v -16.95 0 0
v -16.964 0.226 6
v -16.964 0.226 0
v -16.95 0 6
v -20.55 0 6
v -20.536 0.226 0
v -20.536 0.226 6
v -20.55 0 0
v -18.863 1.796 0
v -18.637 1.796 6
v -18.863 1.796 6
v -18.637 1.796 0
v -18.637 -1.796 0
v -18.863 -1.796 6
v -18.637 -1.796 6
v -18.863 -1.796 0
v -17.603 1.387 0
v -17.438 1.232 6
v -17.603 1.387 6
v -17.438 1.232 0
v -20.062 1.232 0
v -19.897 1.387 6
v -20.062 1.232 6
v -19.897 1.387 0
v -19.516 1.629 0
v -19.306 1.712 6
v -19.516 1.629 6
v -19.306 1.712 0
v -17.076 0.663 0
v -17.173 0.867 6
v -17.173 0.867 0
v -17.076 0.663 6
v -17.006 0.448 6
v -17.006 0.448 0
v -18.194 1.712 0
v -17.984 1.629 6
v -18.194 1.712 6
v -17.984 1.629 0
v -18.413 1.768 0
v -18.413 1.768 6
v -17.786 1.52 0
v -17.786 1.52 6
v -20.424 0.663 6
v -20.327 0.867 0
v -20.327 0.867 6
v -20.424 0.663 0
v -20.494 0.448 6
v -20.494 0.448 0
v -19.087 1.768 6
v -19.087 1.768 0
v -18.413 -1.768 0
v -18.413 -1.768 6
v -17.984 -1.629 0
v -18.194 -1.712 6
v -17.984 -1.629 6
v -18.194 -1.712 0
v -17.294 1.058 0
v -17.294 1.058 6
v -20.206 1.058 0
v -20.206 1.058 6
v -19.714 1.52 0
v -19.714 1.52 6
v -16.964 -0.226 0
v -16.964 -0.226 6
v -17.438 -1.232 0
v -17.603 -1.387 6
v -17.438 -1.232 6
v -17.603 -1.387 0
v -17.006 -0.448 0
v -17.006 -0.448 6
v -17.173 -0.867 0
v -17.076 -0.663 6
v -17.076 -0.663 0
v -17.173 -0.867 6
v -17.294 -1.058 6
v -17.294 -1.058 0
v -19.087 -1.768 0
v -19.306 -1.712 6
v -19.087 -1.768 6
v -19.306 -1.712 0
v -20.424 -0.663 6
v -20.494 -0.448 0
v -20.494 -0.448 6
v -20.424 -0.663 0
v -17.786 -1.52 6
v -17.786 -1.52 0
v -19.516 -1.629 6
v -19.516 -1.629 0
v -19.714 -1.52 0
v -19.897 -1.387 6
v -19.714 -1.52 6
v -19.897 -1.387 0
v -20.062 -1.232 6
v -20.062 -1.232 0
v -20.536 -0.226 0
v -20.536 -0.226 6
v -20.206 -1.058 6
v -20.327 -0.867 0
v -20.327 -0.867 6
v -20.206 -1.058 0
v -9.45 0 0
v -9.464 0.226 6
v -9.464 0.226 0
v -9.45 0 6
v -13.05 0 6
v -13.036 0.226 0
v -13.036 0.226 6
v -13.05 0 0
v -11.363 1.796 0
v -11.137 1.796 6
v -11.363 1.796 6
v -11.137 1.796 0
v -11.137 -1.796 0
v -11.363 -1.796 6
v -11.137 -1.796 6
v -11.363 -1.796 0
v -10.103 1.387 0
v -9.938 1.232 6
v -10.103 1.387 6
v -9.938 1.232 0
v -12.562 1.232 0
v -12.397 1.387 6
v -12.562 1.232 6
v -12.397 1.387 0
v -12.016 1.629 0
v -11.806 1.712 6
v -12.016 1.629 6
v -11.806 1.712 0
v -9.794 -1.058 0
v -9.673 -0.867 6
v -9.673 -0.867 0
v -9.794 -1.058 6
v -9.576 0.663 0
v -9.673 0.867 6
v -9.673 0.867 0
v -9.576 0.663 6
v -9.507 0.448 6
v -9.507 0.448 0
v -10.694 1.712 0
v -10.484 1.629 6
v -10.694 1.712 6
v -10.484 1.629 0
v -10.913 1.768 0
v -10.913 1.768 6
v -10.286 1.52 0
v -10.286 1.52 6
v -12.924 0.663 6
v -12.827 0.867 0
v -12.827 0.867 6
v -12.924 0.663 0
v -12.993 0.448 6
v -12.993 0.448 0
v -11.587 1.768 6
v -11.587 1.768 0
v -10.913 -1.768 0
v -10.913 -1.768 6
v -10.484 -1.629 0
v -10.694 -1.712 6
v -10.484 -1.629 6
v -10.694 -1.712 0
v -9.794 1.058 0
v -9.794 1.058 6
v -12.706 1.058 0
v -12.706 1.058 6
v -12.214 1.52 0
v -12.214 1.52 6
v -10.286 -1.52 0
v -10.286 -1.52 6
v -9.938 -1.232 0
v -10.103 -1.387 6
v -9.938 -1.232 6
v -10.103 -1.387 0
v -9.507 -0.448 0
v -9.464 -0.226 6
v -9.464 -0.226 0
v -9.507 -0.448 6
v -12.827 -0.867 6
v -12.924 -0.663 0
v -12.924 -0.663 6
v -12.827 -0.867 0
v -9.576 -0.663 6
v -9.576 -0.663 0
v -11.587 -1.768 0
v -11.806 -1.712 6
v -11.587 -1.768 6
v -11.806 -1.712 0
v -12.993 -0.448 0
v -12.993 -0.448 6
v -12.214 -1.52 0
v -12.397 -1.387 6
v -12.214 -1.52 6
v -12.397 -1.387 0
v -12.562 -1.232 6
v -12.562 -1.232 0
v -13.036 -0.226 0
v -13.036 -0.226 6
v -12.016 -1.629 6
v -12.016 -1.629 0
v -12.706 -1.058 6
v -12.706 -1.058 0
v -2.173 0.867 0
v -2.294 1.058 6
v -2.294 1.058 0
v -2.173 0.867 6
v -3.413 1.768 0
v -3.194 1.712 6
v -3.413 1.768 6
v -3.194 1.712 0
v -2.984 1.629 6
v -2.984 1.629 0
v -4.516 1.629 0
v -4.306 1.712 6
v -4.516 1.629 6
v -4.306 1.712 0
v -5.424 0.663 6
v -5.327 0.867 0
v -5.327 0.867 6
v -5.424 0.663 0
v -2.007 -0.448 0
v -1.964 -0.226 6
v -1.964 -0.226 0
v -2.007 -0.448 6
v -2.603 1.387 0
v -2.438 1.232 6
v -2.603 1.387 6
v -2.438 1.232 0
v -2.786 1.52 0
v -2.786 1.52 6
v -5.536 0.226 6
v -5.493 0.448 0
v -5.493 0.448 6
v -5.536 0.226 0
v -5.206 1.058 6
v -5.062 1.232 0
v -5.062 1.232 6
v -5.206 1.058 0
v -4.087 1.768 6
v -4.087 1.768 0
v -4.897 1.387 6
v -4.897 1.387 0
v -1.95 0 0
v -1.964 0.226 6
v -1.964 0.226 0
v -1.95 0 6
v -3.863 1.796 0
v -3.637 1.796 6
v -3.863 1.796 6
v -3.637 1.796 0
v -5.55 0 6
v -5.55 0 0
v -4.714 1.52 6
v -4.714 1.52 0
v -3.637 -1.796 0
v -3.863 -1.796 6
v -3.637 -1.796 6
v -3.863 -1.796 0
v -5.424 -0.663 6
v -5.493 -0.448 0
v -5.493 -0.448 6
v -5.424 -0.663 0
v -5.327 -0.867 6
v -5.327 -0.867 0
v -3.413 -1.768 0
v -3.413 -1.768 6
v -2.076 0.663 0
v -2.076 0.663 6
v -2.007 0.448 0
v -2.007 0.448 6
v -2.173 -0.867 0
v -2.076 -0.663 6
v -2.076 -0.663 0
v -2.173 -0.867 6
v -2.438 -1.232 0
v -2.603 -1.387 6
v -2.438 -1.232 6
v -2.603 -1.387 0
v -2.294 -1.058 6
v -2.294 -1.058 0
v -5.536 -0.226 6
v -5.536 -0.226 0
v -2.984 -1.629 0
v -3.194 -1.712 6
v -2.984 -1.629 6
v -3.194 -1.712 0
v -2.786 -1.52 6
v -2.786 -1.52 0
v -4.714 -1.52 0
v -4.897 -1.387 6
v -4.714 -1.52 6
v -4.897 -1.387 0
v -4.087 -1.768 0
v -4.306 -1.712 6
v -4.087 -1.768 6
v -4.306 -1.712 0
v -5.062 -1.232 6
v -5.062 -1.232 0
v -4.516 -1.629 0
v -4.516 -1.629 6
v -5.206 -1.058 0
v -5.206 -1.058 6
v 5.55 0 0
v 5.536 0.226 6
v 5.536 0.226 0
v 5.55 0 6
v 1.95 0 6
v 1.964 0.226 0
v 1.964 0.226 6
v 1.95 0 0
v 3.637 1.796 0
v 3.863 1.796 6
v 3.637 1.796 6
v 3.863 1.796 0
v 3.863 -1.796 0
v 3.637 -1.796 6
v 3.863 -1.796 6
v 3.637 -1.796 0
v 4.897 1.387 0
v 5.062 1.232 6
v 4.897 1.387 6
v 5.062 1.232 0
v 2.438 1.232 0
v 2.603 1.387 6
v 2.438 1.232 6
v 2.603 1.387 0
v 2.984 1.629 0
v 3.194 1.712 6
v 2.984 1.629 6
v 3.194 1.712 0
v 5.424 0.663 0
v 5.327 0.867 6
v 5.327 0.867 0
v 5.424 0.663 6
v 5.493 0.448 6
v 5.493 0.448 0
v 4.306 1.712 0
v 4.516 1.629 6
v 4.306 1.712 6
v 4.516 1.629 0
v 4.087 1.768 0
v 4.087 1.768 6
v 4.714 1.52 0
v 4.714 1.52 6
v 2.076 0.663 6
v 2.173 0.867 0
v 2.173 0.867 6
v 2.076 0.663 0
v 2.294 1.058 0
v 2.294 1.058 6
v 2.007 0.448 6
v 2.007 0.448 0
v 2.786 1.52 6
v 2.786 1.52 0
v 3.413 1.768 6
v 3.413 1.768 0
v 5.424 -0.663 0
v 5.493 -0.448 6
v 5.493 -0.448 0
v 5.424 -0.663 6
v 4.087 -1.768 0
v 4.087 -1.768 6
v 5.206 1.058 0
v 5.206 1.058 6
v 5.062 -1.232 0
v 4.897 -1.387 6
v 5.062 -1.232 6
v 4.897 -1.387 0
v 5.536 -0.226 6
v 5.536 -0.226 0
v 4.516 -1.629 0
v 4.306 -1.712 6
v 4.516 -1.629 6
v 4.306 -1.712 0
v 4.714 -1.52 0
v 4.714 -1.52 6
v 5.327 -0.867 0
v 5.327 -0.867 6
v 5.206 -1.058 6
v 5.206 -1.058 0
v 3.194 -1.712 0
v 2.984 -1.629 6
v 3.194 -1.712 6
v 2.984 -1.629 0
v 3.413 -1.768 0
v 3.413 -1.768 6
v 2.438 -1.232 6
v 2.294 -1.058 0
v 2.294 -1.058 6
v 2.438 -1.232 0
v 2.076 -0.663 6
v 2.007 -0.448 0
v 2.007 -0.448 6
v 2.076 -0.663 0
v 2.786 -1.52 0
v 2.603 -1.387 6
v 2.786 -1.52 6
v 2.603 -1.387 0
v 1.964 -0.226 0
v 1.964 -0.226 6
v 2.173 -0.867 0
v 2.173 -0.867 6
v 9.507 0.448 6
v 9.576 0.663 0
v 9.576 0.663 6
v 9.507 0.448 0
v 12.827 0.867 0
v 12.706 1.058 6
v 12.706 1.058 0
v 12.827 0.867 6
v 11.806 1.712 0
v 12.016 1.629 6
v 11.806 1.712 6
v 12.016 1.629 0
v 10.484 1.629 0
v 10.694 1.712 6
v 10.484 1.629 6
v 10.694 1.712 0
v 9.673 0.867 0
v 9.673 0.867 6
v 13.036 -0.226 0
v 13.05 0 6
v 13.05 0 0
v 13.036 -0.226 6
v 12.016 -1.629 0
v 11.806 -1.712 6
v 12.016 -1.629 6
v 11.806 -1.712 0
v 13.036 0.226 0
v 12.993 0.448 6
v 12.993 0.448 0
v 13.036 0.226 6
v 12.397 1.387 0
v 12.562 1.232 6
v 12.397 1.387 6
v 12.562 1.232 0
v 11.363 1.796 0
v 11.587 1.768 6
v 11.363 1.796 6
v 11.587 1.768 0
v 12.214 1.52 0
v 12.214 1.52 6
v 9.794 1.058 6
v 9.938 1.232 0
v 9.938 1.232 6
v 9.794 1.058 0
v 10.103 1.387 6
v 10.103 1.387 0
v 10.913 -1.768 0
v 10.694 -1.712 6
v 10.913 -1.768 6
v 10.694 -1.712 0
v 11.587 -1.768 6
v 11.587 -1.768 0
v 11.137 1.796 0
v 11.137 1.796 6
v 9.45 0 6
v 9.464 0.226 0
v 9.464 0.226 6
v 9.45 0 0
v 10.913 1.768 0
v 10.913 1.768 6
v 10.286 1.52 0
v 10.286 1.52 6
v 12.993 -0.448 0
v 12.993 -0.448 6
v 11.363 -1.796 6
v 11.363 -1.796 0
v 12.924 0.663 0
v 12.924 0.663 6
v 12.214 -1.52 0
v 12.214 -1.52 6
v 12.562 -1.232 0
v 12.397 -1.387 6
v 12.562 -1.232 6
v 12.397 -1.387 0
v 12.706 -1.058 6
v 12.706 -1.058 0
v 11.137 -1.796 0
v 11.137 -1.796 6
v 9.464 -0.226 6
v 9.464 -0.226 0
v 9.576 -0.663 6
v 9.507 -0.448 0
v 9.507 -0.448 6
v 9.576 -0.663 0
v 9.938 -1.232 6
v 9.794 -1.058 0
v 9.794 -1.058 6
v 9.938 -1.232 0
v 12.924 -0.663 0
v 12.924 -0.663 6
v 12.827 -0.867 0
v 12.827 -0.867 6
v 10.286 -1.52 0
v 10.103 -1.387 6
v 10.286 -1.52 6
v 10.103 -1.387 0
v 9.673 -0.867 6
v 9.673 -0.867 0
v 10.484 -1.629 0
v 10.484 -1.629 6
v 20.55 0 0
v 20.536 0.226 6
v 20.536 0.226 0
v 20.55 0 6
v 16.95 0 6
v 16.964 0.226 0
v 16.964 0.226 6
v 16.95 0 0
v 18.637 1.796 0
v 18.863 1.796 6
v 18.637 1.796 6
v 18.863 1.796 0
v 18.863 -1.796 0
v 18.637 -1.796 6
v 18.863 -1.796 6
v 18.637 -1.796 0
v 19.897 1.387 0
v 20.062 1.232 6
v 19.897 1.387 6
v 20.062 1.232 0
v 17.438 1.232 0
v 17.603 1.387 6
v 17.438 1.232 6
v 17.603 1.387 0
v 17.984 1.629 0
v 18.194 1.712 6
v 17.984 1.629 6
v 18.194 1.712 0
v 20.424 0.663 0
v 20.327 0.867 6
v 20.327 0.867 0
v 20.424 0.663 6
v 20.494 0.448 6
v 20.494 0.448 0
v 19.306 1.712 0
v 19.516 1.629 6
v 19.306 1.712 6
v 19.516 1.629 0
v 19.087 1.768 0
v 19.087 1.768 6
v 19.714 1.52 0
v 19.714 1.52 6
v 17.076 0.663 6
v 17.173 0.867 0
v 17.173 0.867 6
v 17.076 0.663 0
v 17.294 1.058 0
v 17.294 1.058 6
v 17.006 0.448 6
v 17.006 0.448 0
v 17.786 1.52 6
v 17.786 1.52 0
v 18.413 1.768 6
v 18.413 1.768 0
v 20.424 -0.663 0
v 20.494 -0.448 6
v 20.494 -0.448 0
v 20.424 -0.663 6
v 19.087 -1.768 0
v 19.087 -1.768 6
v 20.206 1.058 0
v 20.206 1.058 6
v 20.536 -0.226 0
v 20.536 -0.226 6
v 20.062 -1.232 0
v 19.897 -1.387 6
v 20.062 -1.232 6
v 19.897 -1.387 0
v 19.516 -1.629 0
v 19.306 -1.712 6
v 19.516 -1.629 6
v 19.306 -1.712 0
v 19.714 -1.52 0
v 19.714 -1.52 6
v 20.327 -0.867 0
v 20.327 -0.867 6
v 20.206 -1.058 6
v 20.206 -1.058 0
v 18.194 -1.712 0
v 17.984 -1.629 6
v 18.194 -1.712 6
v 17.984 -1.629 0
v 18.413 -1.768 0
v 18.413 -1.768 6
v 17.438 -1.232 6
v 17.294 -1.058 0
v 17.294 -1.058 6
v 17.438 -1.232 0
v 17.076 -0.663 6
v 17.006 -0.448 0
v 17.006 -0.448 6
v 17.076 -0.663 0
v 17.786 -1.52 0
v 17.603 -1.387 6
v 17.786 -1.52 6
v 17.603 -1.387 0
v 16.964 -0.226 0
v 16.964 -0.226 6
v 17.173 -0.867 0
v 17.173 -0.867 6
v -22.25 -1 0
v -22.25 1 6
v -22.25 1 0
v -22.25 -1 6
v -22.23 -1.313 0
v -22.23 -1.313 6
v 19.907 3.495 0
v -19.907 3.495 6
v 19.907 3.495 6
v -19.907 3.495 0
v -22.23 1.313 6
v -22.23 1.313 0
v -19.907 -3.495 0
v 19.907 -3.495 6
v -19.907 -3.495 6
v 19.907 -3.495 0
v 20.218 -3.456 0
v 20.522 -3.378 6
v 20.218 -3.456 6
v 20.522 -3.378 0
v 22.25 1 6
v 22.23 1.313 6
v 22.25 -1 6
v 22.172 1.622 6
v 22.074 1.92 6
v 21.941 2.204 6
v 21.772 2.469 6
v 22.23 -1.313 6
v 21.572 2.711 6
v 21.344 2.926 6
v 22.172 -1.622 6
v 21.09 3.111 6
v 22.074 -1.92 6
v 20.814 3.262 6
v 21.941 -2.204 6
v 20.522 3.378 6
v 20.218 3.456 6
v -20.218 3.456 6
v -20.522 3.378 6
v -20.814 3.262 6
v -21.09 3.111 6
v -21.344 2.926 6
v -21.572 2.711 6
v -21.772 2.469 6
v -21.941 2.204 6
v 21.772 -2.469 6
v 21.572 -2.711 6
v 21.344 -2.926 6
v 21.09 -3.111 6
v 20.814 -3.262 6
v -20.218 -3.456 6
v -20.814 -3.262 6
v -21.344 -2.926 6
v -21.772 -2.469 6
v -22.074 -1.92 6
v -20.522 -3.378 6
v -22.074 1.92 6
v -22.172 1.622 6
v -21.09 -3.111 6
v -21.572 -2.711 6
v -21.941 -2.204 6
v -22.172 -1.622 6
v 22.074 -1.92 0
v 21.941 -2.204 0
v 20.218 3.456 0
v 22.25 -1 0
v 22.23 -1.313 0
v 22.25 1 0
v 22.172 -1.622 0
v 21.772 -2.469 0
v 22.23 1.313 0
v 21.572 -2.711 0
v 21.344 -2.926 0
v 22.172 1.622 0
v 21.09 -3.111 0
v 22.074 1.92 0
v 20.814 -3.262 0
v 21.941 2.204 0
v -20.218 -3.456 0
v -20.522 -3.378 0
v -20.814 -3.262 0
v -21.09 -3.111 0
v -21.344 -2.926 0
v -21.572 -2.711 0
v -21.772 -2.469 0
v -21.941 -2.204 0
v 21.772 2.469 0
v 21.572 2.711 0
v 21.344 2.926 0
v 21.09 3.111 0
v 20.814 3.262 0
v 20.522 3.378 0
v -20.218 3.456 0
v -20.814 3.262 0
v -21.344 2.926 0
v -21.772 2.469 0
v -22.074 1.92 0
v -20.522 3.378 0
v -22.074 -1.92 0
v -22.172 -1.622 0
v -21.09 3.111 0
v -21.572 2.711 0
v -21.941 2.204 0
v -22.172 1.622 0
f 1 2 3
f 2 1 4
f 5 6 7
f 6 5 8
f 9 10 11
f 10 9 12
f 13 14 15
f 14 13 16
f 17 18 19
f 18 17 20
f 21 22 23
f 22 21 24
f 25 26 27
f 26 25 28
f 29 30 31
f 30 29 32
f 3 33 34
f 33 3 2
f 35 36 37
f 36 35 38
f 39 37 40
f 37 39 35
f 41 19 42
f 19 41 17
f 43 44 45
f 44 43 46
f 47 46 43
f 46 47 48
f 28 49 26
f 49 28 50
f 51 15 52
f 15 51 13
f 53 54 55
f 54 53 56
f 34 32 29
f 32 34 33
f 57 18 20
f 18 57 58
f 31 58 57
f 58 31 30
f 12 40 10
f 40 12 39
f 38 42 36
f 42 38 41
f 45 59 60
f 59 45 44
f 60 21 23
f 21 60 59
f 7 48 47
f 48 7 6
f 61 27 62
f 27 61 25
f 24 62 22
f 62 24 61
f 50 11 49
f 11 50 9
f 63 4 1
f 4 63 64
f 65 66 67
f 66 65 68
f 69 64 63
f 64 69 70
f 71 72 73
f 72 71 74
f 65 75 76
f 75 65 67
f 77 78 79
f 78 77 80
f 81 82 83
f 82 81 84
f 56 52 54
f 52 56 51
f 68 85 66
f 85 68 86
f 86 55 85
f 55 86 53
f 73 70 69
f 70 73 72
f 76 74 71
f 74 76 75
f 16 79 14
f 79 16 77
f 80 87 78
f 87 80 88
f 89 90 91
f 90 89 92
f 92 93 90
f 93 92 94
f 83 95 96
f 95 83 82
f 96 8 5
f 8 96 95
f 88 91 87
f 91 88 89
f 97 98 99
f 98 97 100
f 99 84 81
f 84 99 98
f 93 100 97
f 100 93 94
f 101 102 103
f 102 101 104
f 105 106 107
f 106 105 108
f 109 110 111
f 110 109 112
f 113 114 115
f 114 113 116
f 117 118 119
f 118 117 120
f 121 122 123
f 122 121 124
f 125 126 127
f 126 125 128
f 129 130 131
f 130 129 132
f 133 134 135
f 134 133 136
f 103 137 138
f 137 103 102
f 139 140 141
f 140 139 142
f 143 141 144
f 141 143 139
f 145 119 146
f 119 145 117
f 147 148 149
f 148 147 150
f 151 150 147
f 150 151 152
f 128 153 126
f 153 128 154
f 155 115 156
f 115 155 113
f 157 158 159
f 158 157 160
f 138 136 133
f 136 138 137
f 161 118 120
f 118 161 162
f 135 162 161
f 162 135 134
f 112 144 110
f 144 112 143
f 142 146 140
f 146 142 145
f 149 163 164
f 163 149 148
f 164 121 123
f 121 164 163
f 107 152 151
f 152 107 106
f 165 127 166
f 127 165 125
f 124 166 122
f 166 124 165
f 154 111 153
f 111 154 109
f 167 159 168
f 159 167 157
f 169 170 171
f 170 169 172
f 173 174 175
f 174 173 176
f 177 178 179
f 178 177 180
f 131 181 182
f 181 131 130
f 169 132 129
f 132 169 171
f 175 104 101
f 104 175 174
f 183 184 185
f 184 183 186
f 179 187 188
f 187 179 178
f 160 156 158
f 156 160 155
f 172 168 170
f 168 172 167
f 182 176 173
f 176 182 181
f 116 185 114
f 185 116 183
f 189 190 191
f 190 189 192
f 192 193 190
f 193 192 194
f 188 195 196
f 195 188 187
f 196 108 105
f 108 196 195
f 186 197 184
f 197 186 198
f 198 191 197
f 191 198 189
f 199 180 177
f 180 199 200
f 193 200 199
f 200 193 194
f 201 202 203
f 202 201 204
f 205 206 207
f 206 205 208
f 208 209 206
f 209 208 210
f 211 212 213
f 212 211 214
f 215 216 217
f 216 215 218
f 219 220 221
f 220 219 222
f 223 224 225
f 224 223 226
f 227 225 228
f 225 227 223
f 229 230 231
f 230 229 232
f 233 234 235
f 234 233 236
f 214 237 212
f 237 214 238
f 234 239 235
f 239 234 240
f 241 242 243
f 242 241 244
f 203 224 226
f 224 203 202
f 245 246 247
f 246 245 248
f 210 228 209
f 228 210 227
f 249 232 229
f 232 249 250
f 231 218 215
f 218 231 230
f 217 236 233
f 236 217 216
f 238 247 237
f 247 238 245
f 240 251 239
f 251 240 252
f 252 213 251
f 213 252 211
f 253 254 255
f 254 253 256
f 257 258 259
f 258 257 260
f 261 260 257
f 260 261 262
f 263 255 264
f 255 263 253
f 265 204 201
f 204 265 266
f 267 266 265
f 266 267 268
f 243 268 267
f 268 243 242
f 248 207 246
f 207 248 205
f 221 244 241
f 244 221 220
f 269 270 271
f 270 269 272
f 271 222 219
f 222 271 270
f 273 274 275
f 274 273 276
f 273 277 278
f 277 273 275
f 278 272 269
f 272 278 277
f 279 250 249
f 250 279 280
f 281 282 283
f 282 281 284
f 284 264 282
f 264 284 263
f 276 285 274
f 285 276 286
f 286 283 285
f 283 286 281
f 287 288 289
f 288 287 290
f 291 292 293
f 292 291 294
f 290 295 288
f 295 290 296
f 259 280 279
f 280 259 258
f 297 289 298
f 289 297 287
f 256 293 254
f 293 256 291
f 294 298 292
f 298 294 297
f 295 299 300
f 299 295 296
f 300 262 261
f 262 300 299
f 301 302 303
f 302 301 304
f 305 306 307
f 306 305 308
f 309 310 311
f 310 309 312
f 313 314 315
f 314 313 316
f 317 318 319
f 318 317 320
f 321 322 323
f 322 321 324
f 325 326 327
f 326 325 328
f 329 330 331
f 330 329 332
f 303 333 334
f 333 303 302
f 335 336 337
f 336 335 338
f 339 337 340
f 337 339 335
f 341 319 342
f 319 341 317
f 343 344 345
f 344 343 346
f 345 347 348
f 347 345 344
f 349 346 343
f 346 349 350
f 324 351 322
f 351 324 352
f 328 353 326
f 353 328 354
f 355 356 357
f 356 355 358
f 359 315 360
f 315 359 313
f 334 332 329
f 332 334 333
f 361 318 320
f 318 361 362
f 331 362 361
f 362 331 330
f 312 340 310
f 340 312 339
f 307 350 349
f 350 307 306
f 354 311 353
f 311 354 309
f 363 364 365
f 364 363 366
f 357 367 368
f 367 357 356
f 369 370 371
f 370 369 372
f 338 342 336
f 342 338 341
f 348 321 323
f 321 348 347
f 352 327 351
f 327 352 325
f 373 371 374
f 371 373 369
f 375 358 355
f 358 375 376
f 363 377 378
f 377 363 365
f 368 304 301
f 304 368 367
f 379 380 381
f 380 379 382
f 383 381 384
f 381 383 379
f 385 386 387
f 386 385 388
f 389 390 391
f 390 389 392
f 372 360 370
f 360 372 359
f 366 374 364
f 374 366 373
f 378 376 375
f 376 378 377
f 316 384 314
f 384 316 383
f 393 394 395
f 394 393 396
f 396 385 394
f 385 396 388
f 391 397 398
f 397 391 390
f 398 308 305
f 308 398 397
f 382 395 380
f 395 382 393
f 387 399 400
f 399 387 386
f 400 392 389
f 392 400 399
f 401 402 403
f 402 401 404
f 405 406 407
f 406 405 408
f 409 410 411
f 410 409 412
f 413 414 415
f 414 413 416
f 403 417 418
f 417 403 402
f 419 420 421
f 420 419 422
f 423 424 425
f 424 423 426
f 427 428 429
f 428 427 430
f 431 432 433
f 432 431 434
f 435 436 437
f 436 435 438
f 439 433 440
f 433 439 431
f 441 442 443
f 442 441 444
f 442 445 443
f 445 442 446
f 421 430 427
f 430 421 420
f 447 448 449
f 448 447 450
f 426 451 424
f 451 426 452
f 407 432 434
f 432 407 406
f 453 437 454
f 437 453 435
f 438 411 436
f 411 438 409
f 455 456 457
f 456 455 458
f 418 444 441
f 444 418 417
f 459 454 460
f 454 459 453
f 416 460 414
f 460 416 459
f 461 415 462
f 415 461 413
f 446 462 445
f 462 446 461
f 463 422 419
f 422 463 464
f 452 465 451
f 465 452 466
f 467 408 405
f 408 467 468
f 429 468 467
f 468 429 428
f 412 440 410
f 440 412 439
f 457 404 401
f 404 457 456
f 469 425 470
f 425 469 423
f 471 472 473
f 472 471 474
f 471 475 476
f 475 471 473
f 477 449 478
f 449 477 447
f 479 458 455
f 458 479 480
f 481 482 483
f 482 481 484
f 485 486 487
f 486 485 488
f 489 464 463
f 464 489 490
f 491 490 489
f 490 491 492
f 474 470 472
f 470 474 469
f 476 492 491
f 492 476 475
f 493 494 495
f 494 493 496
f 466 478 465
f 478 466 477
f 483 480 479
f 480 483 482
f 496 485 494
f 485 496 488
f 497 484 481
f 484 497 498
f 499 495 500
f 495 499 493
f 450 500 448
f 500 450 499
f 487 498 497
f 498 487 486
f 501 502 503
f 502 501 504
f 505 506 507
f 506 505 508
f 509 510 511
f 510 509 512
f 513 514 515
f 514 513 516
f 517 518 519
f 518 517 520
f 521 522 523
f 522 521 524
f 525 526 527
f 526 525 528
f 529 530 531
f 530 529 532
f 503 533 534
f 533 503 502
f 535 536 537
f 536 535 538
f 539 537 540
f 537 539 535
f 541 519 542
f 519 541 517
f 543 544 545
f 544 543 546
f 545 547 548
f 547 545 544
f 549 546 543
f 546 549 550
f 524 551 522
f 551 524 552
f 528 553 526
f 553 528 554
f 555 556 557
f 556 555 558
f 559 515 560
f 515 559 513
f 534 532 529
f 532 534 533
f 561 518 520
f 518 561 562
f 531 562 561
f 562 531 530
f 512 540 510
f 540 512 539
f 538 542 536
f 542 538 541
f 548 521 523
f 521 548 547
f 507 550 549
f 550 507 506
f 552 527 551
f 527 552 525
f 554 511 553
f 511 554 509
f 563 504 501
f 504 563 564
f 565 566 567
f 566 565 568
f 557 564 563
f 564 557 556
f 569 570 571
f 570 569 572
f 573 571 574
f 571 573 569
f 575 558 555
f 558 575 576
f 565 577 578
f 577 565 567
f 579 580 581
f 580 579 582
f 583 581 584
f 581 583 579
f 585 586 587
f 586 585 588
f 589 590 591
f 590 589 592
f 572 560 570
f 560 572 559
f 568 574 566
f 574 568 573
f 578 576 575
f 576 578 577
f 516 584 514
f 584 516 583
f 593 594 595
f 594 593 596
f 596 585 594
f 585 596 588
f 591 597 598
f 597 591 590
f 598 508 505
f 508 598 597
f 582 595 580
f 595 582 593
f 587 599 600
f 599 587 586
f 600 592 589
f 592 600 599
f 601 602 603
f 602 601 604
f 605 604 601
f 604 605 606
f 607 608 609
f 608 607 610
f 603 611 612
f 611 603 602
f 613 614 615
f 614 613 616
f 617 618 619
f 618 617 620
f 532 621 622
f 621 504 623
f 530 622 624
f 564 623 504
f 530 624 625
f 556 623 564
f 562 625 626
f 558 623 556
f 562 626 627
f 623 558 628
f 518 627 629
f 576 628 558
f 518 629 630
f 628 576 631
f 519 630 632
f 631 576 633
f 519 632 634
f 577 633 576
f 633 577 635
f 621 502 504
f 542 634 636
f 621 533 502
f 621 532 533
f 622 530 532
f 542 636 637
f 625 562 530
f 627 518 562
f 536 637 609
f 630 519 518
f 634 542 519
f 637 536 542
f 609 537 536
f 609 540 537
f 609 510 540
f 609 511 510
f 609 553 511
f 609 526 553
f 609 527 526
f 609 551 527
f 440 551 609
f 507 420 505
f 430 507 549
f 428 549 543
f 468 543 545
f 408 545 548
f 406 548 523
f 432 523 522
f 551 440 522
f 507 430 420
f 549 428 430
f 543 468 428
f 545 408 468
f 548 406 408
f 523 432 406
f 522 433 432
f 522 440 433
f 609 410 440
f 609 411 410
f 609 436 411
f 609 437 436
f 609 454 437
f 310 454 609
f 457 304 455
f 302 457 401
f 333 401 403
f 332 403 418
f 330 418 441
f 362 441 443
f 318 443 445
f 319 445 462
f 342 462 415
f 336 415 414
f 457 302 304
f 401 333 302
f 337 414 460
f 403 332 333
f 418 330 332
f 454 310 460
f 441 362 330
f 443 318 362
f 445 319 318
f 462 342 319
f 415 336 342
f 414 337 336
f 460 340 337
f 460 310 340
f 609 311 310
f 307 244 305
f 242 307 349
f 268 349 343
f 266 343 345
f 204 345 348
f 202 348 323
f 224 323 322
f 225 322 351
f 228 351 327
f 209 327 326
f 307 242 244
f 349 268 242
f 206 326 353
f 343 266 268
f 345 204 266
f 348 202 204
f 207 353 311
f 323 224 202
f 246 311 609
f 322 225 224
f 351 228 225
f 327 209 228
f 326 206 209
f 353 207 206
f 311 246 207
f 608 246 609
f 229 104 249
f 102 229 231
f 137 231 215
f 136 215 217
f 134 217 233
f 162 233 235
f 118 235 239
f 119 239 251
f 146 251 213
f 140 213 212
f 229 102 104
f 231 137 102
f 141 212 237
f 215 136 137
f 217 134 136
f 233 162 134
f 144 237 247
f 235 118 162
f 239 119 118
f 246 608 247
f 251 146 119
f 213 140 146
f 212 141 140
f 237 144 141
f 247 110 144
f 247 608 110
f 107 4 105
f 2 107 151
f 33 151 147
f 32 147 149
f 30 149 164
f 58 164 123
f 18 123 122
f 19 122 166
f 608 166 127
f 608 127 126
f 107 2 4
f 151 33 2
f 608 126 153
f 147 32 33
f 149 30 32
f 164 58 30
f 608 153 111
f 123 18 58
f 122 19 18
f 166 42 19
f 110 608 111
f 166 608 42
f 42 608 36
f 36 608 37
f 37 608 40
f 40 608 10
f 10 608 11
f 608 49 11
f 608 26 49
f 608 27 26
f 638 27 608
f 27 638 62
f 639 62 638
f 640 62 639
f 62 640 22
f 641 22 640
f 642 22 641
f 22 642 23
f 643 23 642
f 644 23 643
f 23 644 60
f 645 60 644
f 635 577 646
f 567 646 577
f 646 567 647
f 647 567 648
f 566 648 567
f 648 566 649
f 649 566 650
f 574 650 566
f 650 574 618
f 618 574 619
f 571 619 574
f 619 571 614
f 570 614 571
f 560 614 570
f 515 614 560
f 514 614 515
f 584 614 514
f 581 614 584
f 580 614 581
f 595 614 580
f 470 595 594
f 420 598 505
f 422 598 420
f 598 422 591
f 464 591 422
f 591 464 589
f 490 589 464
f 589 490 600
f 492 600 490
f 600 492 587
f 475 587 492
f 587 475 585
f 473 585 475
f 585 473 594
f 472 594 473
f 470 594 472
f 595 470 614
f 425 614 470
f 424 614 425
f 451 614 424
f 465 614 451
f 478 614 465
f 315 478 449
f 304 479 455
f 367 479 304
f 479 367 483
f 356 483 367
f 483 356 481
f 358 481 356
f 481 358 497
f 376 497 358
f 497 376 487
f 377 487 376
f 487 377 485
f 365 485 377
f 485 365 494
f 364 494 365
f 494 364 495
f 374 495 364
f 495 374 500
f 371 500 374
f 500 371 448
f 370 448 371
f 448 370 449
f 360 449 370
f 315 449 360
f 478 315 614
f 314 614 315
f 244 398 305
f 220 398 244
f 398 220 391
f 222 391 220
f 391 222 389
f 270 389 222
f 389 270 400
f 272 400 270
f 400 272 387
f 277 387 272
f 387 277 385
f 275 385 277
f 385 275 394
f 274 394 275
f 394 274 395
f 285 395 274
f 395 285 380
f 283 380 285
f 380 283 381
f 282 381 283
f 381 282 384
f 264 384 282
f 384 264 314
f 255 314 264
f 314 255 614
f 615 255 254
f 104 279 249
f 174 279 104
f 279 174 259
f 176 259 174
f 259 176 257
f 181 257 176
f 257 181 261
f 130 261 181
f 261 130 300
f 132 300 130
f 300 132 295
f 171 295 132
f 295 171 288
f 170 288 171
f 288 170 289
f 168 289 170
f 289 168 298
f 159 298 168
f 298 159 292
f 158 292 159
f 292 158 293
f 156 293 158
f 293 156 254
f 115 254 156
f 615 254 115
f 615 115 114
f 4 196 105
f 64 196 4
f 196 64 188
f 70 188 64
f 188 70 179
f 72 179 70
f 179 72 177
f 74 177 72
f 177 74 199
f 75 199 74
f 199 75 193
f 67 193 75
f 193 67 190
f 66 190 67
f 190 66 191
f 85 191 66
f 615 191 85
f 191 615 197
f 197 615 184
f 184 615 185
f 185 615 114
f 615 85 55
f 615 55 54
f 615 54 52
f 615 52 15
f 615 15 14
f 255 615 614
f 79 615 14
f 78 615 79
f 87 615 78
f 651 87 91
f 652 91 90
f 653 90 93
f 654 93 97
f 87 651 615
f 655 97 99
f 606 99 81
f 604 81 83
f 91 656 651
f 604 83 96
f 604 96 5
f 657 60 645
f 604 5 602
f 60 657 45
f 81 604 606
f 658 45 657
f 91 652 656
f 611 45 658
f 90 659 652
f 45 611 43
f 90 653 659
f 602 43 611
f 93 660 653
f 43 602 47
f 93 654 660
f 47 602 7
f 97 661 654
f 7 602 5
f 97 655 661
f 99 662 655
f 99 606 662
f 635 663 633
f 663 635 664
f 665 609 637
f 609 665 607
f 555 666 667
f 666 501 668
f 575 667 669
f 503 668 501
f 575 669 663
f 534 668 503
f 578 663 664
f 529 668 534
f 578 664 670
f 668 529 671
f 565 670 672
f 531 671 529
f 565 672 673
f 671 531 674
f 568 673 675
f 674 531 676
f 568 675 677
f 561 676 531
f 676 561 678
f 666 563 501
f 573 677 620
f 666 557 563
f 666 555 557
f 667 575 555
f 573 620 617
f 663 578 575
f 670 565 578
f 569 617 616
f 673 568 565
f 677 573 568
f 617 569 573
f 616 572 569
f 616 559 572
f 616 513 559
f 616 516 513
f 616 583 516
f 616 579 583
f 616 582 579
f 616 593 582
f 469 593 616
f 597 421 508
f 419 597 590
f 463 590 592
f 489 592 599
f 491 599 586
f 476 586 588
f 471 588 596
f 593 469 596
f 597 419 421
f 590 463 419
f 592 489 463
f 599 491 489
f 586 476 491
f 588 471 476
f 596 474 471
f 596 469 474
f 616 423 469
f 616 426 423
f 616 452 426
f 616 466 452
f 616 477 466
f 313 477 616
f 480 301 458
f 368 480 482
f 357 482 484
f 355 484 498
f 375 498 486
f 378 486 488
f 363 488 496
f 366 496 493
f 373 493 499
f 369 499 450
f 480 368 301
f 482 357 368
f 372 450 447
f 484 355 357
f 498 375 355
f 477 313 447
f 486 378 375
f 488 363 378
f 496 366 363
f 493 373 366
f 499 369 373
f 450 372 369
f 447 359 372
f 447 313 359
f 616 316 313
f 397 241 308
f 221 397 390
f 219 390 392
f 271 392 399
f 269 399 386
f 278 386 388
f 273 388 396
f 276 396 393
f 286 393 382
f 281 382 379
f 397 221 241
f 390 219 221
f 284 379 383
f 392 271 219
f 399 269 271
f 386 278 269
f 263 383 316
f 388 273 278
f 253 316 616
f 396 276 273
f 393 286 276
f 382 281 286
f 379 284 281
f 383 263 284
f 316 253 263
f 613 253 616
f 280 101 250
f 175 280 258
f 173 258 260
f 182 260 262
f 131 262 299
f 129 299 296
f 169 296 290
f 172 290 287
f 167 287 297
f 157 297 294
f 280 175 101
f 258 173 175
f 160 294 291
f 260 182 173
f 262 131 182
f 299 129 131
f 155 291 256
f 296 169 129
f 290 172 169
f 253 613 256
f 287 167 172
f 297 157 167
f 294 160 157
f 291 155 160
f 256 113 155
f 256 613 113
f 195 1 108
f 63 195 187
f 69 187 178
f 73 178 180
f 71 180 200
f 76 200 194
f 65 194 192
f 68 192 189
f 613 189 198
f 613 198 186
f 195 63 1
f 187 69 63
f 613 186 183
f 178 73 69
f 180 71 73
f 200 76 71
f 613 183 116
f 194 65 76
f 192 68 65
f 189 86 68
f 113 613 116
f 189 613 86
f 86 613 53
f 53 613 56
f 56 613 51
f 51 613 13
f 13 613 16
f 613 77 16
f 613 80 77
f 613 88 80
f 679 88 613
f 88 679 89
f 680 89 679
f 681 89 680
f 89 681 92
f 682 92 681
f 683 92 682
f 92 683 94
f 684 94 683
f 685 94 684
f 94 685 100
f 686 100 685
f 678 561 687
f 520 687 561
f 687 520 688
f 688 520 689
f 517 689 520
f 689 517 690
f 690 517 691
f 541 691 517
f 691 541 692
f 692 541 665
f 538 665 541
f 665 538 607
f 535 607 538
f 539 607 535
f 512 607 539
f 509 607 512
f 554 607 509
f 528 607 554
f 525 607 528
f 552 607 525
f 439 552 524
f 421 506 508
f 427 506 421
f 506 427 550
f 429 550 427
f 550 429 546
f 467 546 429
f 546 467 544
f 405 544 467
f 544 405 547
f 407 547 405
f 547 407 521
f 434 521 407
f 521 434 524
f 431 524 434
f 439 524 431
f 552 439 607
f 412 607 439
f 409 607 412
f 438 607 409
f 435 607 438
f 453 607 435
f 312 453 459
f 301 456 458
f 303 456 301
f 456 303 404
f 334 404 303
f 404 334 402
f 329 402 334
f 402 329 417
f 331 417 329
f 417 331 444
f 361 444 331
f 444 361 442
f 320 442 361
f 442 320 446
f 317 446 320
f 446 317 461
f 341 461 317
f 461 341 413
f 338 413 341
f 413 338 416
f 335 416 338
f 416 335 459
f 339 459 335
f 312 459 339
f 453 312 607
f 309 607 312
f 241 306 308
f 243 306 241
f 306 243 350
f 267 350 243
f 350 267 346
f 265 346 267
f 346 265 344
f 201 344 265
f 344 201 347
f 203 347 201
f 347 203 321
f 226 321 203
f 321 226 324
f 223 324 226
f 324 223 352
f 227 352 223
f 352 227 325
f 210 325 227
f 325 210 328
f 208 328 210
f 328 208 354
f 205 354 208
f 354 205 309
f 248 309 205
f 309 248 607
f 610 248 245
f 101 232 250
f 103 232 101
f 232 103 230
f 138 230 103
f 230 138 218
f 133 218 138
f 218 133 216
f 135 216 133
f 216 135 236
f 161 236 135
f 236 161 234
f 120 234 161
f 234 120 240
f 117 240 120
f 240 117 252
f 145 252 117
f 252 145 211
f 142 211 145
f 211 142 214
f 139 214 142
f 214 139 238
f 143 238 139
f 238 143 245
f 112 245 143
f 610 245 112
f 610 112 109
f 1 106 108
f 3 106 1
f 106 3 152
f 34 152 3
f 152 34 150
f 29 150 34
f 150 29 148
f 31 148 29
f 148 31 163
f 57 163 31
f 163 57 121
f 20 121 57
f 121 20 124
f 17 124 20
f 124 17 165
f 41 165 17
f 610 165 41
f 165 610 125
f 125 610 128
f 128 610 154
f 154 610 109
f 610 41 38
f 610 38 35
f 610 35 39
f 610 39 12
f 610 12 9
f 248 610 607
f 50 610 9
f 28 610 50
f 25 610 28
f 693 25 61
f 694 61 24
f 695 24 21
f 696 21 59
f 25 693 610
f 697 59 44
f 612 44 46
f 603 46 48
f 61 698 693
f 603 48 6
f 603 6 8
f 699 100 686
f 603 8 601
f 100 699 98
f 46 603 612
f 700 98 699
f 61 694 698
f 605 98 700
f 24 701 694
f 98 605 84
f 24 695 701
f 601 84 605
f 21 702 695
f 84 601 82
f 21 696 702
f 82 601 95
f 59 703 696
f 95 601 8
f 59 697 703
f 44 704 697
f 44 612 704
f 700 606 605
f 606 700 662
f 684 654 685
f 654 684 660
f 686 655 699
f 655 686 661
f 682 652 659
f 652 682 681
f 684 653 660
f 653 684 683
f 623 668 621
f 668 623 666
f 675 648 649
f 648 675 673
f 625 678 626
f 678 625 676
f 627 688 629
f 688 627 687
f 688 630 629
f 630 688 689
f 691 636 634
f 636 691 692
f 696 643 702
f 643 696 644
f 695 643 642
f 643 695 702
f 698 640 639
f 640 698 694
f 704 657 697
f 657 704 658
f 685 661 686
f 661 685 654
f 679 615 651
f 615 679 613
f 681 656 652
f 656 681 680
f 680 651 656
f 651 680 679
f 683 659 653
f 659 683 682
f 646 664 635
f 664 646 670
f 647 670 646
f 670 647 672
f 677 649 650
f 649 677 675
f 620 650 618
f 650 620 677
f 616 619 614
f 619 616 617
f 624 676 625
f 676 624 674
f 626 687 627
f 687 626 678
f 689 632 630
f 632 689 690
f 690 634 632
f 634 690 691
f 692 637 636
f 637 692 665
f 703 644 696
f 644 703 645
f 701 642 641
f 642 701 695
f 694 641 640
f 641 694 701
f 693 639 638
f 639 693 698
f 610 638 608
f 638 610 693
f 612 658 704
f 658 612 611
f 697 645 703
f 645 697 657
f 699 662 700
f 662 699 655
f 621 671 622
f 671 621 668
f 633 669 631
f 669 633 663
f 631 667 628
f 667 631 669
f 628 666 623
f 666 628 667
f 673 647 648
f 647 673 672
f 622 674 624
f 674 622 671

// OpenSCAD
$fn = 50;


difference() {
	union() {
		translate(v = [0, 0, 0]) {
			rotate(a = [0, 0, 0]) {
				hull() {
					translate(v = [-19.7500000000, 1.0000000000, 0]) {
						rotate(a = [0, 0, 0]) {
							translate(v = [0, 0, 0]) {
								rotate(a = [0, 0, 0]) {
									cylinder(h = 6, r = 2.5000000000);
								}
							}
						}
					}
					translate(v = [19.7500000000, 1.0000000000, 0]) {
						rotate(a = [0, 0, 0]) {
							translate(v = [0, 0, 0]) {
								rotate(a = [0, 0, 0]) {
									cylinder(h = 6, r = 2.5000000000);
								}
							}
						}
					}
					translate(v = [-19.7500000000, -1.0000000000, 0]) {
						rotate(a = [0, 0, 0]) {
							translate(v = [0, 0, 0]) {
								rotate(a = [0, 0, 0]) {
									cylinder(h = 6, r = 2.5000000000);
								}
							}
						}
					}
					translate(v = [19.7500000000, -1.0000000000, 0]) {
						rotate(a = [0, 0, 0]) {
							translate(v = [0, 0, 0]) {
								rotate(a = [0, 0, 0]) {
									cylinder(h = 6, r = 2.5000000000);
								}
							}
						}
					}
				}
			}
		}
	}
	union() {
		translate(v = [-18.7500000000, 0.0000000000, 0]) {
			rotate(a = [0, 0, 0]) {
				translate(v = [0, 0, -50]) {
					rotate(a = [0, 0, 0]) {
						cylinder(h = 100, r = 1.8000000000);
					}
				}
			}
		}
		translate(v = [-11.2500000000, 0.0000000000, 0]) {
			rotate(a = [0, 0, 0]) {
				translate(v = [0, 0, -50]) {
					rotate(a = [0, 0, 0]) {
						cylinder(h = 100, r = 1.8000000000);
					}
				}
			}
		}
		translate(v = [-3.7500000000, 0.0000000000, 0]) {
			rotate(a = [0, 0, 0]) {
				translate(v = [0, 0, -50]) {
					rotate(a = [0, 0, 0]) {
						cylinder(h = 100, r = 1.8000000000);
					}
				}
			}
		}
		translate(v = [3.7500000000, 0.0000000000, 0]) {
			rotate(a = [0, 0, 0]) {
				translate(v = [0, 0, -50]) {
					rotate(a = [0, 0, 0]) {
						cylinder(h = 100, r = 1.8000000000);
					}
				}
			}
		}
		translate(v = [11.2500000000, 0.0000000000, 0]) {
			rotate(a = [0, 0, 0]) {
				translate(v = [0, 0, -50]) {
					rotate(a = [0, 0, 0]) {
						cylinder(h = 100, r = 1.8000000000);
					}
				}
			}
		}
		translate(v = [18.7500000000, 0.0000000000, 0]) {
			rotate(a = [0, 0, 0]) {
				translate(v = [0, 0, -50]) {
					rotate(a = [0, 0, 0]) {
						cylinder(h = 100, r = 1.8000000000);
					}
				}
			}
		}
	}
}
